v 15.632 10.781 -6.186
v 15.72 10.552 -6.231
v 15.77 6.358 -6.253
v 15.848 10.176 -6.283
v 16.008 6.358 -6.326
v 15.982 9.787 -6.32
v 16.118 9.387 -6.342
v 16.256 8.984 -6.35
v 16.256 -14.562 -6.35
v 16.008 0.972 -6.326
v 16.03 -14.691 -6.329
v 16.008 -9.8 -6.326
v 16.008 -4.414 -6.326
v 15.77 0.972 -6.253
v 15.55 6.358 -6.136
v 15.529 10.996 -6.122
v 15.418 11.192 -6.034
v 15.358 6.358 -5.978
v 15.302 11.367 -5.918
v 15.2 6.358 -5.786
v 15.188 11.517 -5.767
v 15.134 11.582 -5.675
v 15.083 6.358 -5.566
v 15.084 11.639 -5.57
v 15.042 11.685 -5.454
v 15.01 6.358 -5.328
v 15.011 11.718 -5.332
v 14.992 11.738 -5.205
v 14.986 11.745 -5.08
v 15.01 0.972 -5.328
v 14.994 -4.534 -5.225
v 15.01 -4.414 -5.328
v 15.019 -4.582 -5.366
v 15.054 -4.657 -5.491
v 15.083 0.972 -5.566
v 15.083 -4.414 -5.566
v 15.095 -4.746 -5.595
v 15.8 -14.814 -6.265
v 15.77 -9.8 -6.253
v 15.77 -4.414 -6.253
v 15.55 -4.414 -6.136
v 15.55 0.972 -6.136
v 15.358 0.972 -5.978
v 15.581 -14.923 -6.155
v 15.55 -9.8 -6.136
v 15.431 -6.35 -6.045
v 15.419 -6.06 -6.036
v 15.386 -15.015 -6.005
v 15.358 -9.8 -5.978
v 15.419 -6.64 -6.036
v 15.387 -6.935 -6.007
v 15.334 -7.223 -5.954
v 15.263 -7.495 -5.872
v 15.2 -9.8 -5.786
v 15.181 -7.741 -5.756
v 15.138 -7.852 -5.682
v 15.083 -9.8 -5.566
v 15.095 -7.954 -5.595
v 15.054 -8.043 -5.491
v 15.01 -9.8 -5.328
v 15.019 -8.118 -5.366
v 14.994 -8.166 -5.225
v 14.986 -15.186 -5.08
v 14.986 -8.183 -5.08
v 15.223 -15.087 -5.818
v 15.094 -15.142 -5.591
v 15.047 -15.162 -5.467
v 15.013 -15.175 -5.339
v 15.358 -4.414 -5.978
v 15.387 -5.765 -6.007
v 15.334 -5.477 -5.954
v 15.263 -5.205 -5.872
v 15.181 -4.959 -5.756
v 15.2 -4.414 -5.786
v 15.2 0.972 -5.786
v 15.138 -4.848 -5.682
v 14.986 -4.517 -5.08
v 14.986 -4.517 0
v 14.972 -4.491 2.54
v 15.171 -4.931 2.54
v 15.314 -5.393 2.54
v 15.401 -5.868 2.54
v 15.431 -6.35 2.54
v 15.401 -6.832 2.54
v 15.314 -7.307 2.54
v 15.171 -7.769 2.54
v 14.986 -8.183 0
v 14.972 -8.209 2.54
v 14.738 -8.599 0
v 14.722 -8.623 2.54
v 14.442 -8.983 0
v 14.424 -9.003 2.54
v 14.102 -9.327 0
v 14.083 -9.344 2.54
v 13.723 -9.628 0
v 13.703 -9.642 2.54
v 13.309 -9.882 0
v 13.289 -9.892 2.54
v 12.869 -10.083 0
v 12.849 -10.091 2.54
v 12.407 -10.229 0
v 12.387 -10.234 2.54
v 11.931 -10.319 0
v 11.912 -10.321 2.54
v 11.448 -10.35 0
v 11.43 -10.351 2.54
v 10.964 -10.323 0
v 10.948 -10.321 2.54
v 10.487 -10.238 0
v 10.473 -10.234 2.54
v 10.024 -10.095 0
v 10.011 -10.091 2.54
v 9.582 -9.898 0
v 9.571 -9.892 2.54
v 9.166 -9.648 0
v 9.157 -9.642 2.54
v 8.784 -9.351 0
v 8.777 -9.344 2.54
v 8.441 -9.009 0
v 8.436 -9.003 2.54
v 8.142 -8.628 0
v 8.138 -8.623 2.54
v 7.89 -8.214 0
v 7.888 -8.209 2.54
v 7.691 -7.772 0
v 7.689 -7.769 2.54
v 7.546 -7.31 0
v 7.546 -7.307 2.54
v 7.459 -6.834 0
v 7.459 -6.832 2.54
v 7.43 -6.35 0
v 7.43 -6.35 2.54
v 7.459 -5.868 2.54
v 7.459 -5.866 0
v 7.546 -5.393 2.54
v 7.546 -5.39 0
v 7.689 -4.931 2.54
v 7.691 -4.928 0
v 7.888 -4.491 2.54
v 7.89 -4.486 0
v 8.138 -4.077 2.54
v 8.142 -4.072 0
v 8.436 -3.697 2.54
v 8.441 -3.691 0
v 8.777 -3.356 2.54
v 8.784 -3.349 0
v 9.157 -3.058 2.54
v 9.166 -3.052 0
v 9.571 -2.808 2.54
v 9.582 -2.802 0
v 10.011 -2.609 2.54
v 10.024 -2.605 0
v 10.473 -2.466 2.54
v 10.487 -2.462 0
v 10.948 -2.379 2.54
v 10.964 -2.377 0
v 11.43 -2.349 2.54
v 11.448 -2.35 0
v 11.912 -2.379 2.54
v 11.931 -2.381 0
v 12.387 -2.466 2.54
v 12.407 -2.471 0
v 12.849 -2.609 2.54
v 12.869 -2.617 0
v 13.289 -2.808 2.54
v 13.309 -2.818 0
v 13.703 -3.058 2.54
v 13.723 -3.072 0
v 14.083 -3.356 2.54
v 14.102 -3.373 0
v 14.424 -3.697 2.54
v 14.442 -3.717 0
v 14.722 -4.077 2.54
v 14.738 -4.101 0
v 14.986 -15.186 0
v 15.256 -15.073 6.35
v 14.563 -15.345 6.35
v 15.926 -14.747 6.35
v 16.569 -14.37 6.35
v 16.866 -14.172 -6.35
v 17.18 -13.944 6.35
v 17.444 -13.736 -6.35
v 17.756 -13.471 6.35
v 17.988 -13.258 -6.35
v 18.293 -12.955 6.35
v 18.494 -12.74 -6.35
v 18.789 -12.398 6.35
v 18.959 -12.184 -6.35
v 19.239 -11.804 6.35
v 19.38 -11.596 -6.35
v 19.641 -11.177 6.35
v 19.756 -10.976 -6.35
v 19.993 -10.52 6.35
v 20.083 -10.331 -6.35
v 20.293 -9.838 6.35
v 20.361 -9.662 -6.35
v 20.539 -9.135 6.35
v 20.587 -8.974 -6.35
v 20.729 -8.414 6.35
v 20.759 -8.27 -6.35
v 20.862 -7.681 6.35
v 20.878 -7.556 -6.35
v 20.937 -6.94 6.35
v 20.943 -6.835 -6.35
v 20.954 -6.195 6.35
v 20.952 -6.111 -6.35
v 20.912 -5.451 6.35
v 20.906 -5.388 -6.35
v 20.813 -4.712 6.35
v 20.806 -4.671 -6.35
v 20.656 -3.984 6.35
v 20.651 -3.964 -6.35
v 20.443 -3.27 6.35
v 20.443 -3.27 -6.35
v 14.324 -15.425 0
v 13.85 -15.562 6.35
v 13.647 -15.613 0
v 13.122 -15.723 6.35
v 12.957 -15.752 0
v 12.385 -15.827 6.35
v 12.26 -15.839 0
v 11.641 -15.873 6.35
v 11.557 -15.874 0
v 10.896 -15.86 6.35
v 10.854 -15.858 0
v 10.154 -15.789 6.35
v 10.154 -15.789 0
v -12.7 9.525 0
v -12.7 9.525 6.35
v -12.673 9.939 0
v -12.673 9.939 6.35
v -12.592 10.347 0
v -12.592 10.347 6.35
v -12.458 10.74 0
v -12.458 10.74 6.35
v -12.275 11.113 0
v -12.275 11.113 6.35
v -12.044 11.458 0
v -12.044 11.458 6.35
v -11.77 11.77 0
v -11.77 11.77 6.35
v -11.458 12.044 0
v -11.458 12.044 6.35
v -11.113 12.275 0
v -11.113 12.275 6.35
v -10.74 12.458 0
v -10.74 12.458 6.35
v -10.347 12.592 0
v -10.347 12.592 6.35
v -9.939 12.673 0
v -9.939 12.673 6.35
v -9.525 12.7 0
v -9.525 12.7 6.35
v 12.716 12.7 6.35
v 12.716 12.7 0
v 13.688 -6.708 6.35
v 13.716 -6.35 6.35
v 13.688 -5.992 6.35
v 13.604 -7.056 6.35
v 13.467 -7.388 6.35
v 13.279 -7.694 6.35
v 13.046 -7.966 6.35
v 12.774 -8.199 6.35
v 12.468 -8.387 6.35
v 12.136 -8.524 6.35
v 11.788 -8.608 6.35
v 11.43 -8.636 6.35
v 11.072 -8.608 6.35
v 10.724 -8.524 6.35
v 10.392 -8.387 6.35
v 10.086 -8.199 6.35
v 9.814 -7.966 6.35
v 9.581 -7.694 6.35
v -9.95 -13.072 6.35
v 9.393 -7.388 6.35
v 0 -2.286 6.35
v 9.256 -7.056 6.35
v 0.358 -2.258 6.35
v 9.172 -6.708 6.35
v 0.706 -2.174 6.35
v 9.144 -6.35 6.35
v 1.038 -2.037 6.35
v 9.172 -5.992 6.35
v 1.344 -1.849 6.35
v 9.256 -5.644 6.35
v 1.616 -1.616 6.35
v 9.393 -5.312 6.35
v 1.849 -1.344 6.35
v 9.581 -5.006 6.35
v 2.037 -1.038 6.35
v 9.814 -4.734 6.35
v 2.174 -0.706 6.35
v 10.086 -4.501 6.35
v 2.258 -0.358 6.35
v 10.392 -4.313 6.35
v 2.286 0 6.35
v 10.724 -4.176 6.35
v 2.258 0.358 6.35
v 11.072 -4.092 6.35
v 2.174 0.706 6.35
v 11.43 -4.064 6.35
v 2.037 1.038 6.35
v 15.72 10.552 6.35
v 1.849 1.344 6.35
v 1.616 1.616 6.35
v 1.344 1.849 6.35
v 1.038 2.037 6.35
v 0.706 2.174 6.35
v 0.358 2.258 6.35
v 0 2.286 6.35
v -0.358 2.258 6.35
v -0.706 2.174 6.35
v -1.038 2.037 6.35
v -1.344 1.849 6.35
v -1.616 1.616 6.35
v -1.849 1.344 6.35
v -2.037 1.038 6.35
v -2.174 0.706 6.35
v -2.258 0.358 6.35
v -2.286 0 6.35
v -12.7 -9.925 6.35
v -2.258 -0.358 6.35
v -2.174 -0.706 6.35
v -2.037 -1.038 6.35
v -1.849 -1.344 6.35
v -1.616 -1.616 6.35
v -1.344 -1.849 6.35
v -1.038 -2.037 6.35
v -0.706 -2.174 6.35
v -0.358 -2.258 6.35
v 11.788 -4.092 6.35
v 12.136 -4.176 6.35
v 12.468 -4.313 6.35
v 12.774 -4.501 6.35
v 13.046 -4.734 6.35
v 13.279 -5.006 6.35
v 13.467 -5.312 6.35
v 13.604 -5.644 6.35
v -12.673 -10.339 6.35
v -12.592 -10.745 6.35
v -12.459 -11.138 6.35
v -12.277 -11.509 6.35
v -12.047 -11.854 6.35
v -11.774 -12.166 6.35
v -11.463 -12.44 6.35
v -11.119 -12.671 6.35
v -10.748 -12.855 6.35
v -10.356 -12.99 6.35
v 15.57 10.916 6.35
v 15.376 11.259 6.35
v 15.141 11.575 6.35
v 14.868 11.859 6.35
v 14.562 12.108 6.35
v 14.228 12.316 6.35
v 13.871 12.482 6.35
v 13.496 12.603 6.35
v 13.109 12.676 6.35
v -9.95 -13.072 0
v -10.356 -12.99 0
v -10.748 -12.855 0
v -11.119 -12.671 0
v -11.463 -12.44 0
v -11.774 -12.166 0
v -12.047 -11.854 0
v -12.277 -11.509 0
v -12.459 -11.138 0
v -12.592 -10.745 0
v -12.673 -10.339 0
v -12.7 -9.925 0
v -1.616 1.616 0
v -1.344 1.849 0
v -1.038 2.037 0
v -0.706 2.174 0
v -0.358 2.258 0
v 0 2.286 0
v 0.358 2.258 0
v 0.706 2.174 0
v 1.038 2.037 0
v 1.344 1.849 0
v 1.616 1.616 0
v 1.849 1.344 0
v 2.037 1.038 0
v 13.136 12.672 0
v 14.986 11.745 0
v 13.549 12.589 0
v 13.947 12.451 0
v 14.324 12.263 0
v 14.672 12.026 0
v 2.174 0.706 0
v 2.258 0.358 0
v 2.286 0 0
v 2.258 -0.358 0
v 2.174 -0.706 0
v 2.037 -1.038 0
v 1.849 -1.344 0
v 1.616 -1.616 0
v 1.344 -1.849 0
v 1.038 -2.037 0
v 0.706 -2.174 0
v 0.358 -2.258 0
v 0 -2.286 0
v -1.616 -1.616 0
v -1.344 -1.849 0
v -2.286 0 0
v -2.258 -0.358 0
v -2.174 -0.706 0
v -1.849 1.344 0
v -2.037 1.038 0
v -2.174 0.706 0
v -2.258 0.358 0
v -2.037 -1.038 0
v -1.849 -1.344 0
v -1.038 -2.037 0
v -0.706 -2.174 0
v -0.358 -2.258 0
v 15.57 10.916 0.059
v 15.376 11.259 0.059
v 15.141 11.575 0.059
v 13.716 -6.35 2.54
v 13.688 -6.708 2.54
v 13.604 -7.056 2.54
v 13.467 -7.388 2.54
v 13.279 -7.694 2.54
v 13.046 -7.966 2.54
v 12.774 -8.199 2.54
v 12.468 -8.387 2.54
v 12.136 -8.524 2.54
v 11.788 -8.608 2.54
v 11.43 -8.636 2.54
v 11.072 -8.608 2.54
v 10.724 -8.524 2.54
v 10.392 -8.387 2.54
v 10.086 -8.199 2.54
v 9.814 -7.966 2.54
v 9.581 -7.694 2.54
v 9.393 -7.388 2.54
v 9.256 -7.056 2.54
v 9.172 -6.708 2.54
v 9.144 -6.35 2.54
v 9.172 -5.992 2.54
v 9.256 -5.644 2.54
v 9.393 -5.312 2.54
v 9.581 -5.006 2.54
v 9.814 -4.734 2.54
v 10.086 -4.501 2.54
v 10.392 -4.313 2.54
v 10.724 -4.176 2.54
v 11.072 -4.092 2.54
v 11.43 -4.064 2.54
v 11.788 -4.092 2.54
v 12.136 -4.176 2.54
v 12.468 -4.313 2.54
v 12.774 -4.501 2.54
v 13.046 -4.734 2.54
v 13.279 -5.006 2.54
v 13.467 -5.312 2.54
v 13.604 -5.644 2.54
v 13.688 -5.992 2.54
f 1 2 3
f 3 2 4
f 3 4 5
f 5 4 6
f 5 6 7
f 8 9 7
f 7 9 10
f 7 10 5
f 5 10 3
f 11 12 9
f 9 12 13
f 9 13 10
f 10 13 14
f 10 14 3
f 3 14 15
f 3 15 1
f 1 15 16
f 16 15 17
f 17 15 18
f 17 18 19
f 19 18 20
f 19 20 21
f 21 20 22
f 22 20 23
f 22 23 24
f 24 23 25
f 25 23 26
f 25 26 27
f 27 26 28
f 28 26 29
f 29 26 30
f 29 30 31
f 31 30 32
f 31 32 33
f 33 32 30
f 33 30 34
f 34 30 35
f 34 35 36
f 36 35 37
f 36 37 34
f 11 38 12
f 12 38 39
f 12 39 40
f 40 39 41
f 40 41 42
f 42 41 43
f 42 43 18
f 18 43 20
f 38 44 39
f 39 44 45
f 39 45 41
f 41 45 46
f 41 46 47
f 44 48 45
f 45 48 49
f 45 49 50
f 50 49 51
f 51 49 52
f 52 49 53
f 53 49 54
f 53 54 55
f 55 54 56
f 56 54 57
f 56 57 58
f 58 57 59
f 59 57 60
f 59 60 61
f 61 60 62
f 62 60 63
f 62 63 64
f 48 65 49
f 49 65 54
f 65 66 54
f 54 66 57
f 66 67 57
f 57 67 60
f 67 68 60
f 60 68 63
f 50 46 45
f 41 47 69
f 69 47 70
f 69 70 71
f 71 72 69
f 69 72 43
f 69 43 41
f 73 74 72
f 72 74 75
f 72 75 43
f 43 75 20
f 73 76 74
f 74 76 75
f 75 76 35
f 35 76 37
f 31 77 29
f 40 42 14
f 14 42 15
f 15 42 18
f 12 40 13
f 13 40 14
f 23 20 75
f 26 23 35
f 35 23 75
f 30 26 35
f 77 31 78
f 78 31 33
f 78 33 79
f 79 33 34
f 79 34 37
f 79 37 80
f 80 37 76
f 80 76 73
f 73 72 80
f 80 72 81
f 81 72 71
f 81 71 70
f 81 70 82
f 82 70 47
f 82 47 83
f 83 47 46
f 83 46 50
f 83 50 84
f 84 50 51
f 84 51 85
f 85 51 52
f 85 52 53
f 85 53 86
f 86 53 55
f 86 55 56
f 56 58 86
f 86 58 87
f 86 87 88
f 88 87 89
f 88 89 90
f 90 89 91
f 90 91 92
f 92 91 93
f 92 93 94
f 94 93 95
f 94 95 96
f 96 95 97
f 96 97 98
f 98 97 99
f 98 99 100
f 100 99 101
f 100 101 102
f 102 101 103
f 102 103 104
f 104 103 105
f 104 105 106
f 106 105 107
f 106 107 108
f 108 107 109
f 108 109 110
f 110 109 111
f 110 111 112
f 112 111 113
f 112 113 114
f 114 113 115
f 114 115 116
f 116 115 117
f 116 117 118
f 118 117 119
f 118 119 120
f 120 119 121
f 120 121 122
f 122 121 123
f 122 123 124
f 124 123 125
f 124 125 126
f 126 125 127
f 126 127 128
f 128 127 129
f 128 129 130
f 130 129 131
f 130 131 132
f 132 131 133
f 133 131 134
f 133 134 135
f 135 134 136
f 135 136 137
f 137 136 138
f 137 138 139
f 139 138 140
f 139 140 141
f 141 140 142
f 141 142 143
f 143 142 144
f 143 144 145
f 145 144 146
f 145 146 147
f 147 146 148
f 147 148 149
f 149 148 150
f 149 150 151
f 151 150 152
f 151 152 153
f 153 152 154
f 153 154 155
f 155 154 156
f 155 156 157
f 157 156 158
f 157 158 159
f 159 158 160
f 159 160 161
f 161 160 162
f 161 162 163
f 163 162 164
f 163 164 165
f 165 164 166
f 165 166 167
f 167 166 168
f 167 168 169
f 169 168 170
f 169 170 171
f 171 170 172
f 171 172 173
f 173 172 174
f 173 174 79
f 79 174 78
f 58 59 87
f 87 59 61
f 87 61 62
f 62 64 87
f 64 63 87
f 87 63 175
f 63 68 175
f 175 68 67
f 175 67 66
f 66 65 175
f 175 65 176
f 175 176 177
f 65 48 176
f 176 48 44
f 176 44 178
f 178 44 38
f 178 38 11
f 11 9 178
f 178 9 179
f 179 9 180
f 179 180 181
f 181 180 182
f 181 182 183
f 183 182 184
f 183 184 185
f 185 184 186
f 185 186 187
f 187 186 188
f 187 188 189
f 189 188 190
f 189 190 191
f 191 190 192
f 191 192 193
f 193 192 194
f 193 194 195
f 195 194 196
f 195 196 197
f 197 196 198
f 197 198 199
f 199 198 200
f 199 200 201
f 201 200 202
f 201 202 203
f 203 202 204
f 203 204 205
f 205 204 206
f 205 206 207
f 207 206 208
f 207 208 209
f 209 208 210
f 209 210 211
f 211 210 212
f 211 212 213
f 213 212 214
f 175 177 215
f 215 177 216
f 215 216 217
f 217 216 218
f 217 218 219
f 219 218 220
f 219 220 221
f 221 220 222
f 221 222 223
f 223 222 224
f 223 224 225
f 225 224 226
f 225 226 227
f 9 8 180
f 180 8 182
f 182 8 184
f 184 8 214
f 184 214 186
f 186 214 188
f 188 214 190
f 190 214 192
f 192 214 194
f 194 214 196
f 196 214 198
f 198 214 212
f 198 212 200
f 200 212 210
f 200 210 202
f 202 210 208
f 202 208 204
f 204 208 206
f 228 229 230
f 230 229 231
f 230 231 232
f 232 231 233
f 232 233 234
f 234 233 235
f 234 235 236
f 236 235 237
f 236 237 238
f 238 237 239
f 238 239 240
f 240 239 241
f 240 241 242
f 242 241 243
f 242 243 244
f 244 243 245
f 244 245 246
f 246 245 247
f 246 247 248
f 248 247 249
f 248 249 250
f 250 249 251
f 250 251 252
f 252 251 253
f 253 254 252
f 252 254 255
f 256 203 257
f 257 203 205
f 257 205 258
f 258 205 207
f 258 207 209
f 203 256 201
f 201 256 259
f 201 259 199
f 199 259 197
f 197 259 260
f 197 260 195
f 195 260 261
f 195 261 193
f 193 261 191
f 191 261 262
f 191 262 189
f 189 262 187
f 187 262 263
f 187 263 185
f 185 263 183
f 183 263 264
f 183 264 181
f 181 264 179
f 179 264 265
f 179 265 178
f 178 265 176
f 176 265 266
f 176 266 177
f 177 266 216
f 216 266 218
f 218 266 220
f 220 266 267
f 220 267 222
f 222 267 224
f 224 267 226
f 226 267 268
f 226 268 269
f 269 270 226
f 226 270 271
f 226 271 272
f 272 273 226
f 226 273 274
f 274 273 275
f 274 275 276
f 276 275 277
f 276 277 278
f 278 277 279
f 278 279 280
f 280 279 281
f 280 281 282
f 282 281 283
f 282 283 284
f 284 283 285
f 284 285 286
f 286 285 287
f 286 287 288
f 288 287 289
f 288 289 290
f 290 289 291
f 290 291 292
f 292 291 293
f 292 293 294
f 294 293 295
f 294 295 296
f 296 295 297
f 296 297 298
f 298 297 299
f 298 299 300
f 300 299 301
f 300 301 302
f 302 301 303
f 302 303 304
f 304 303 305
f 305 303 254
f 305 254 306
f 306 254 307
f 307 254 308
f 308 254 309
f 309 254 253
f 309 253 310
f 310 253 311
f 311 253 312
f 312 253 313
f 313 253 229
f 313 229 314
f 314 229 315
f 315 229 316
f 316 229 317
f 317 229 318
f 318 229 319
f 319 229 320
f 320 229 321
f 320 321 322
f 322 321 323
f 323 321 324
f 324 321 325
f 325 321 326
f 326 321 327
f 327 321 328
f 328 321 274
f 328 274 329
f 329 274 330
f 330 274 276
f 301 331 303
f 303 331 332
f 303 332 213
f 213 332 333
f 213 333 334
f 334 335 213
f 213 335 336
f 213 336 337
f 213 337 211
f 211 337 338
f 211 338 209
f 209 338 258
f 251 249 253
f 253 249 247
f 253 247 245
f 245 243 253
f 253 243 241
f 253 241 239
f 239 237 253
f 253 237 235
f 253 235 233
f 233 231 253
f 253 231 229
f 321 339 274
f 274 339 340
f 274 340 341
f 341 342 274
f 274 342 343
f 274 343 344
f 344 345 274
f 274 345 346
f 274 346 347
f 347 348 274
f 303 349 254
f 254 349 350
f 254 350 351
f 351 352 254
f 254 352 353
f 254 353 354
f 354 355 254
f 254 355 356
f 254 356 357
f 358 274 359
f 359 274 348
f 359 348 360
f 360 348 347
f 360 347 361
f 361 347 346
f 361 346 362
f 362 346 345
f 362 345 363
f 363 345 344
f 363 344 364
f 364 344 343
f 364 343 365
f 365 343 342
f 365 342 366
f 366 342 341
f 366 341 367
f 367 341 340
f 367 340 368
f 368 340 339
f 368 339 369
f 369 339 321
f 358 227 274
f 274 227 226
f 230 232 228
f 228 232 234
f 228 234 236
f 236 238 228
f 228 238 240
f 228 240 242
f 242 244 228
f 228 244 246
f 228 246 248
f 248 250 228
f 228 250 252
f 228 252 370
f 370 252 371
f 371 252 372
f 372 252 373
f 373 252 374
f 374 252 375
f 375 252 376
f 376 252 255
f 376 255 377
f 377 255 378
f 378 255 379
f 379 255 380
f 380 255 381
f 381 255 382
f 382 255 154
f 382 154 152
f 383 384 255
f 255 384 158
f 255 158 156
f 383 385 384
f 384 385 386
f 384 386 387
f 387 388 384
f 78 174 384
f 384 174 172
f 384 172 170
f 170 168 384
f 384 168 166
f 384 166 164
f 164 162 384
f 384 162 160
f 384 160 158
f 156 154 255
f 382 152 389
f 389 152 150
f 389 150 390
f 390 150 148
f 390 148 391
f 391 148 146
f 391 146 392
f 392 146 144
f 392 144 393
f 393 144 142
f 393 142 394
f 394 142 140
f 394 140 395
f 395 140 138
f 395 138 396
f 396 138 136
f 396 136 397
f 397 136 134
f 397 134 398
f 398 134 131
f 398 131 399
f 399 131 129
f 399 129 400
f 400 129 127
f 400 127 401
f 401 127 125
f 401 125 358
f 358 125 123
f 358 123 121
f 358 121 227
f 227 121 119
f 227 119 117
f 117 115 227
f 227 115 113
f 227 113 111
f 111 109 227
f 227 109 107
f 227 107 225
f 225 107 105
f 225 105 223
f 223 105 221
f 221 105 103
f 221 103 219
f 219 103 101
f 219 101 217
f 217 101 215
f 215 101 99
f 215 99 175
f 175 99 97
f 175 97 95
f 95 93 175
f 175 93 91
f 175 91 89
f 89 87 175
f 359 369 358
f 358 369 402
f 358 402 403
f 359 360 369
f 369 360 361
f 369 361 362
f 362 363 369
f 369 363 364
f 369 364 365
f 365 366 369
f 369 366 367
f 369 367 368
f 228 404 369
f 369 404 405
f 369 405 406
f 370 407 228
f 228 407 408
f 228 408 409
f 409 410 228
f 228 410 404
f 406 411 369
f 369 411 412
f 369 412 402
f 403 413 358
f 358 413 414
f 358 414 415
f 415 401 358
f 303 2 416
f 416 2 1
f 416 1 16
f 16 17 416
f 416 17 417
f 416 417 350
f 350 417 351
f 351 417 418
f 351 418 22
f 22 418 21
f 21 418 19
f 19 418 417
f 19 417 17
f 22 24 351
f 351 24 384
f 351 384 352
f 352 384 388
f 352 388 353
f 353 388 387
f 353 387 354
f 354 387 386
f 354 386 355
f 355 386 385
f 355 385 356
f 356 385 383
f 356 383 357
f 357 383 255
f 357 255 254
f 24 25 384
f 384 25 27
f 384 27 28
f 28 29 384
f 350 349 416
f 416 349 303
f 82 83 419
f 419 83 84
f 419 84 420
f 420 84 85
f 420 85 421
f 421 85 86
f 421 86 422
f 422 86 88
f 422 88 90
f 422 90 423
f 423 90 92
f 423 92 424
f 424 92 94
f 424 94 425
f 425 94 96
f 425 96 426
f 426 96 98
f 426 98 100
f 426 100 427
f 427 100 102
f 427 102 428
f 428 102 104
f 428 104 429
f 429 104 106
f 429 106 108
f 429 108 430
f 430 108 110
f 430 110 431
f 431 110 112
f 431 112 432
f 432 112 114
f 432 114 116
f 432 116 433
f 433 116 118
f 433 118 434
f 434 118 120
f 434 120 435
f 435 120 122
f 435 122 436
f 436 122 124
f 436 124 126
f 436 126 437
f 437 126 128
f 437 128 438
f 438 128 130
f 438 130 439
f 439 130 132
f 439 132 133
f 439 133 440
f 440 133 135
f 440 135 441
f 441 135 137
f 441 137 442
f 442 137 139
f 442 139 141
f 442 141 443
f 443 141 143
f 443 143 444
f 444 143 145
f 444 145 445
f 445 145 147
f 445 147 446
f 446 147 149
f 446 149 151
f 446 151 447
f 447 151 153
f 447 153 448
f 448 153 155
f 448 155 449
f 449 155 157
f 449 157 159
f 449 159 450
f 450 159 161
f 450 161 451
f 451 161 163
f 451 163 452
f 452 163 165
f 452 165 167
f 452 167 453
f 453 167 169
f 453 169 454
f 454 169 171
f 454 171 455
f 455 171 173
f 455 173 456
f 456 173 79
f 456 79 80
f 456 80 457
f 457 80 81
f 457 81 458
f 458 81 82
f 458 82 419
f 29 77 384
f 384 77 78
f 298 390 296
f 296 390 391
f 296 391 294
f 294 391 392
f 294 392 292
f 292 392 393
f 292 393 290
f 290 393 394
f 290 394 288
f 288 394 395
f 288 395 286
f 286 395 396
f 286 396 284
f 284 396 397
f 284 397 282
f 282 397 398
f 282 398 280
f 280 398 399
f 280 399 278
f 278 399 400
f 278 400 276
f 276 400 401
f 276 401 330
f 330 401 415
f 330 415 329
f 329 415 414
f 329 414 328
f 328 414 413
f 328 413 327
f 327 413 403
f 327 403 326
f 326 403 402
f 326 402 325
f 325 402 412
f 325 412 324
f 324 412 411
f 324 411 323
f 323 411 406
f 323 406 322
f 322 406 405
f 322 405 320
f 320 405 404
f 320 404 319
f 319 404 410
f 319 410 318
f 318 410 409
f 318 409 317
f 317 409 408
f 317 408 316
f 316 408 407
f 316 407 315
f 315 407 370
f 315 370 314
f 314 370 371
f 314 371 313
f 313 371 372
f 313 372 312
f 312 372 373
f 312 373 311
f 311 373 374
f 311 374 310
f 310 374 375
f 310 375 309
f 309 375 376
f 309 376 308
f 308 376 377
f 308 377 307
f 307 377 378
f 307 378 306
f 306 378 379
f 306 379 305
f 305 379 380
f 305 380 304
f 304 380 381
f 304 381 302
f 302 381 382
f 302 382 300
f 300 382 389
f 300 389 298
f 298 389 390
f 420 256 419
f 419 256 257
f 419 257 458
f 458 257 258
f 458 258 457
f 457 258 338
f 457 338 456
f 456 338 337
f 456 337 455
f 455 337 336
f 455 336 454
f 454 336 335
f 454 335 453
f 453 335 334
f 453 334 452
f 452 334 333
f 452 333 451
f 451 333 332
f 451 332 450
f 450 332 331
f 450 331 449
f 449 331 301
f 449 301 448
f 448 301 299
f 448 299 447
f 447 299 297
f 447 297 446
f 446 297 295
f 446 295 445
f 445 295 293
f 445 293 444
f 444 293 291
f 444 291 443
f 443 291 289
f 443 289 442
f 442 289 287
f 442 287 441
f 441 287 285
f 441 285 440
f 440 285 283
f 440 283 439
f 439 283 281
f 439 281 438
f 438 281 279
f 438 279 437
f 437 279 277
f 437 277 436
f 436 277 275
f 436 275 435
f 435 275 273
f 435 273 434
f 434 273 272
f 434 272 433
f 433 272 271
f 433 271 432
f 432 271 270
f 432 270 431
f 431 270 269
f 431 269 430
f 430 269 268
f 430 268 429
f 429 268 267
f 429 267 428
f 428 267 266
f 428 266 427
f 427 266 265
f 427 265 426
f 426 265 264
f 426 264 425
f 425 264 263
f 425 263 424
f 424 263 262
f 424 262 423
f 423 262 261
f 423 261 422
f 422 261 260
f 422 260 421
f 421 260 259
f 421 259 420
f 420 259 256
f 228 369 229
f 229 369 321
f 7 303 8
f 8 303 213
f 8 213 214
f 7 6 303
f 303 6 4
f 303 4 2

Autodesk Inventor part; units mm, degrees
ref_plane "YZ Plane" through (0, 0, 0) normal (1, 0, 0) x (0, 1, 0)
ref_plane "XZ Plane" through (0, 0, 0) normal (0, 1, 0) x (-1, 0, 0)
ref_plane "XY Plane" through (0, 0, 0) normal (0, 0, 1) x (1, 0, 0)
sketch "Sketch1" plane through (0, 0, 0) normal (0, 0, 1) x (1, 0, 0)
  line L0 (12.7, -12.7) -> (-12.7, -12.7)
  line L1 (-12.7, -12.7) -> (-12.7, 12.7)
  line L2 (-12.7, 12.7) -> (12.7, 12.7)
  line L3 (12.7, 12.7) -> (12.7, -12.7)
  line L4 (12.7, -12.7) -> (-12.7, 12.7) construction
  line L5 (-12.7, -12.7) -> (12.7, 12.7) construction
  circle A0 centre (11.43, -6.35) radius 9.525
  line L6 (12.7, 12.7) -> (14.986, 12.7)
  line L7 (14.986, 12.7) -> (14.986, -15.1863)
  line L8 (14.986, -12.7) -> (12.7, -12.7)
  line L9 (12.7, -12.7) -> (12.7, 12.7) construction
  line L10 (6.6364, -7.4249) -> (8.1023, -2.736) construction
  line L11 (8.1023, -2.736) -> (12.8959, -1.6611) construction
  line L12 (12.8959, -1.6611) -> (16.2236, -5.2751) construction
  line L13 (16.2236, -5.2751) -> (14.7577, -9.964) construction
  line L14 (14.7577, -9.964) -> (9.9641, -11.0389) construction
  line L15 (9.9641, -11.0389) -> (6.6364, -7.4249) construction
  circle A1 centre (11.43, -6.35) radius 2.286
  circle A2 centre (11.43, -6.35) radius 4.0005
  circle A3 centre (0, 0) radius 2.286
  line L16 (10.1541, -15.7892) -> (-12.7, -12.7)
  line L17 (14.986, 12.7) -> (20.4433, -3.27)
  point P0 (14.986, -9.2337)
  point P1 (14.986, -4.5173)
  point P2 (14.986, -8.1827)
  point P3 (12.1553, 12.7)
  point P4 (-5.8053, 12.7)
  point P5 (4.3305, -12.7)
  point P6 (12.7, 3.09)
  point P7 (14.986, 2.4863)
  dimension "d0" = 25.4
  dimension "d1" = 25.4
  dimension "d3" = 19.05
  dimension "d5" = 8.509
  dimension "d6" = 4.572
  dimension "d13" = 8.001
  dimension "d17" = 4.572
  dimension "d19" = 2.286
  dimension "d26" = 6.35
  dimension "d27" = 11.43
extrude "Extrusion1" add sketch "Sketch1" along normal blind 6.35 contours L8 L7 A0 L0 | L0 A0 L3 A2 | L3 A2 L7 L8 | A0 L16 L0 | L0 L1 L2 L3 A0 | A2 L3 A1 | L3 A1 A2 L7 | L7 A2 A0 | A0 L7 A2 L3 | L3 L6 L7 A0 | L7 A2 | L7 L17 A0
extrude "Extrusion2" add sketch "Sketch1" against normal blind 6.35 contours L7 A2 A0 | L7 L17 A0
extrude "Extrusion3" cut sketch "Sketch1" along normal blind 2.54 contours A2 L3 A1 | L3 A1 A2 L7 | L7 A2
fillet "Fillet2" radius 3.175 3 edges at (14.986, 12.7, 3.175) (-12.7, -12.7, 3.175) (-12.7, 12.7, 3.175)
fillet "Fillet1" radius 1.27 1 edges at (14.986, 3.6136, -6.35)
properties part number "Elevator Tensioner"
